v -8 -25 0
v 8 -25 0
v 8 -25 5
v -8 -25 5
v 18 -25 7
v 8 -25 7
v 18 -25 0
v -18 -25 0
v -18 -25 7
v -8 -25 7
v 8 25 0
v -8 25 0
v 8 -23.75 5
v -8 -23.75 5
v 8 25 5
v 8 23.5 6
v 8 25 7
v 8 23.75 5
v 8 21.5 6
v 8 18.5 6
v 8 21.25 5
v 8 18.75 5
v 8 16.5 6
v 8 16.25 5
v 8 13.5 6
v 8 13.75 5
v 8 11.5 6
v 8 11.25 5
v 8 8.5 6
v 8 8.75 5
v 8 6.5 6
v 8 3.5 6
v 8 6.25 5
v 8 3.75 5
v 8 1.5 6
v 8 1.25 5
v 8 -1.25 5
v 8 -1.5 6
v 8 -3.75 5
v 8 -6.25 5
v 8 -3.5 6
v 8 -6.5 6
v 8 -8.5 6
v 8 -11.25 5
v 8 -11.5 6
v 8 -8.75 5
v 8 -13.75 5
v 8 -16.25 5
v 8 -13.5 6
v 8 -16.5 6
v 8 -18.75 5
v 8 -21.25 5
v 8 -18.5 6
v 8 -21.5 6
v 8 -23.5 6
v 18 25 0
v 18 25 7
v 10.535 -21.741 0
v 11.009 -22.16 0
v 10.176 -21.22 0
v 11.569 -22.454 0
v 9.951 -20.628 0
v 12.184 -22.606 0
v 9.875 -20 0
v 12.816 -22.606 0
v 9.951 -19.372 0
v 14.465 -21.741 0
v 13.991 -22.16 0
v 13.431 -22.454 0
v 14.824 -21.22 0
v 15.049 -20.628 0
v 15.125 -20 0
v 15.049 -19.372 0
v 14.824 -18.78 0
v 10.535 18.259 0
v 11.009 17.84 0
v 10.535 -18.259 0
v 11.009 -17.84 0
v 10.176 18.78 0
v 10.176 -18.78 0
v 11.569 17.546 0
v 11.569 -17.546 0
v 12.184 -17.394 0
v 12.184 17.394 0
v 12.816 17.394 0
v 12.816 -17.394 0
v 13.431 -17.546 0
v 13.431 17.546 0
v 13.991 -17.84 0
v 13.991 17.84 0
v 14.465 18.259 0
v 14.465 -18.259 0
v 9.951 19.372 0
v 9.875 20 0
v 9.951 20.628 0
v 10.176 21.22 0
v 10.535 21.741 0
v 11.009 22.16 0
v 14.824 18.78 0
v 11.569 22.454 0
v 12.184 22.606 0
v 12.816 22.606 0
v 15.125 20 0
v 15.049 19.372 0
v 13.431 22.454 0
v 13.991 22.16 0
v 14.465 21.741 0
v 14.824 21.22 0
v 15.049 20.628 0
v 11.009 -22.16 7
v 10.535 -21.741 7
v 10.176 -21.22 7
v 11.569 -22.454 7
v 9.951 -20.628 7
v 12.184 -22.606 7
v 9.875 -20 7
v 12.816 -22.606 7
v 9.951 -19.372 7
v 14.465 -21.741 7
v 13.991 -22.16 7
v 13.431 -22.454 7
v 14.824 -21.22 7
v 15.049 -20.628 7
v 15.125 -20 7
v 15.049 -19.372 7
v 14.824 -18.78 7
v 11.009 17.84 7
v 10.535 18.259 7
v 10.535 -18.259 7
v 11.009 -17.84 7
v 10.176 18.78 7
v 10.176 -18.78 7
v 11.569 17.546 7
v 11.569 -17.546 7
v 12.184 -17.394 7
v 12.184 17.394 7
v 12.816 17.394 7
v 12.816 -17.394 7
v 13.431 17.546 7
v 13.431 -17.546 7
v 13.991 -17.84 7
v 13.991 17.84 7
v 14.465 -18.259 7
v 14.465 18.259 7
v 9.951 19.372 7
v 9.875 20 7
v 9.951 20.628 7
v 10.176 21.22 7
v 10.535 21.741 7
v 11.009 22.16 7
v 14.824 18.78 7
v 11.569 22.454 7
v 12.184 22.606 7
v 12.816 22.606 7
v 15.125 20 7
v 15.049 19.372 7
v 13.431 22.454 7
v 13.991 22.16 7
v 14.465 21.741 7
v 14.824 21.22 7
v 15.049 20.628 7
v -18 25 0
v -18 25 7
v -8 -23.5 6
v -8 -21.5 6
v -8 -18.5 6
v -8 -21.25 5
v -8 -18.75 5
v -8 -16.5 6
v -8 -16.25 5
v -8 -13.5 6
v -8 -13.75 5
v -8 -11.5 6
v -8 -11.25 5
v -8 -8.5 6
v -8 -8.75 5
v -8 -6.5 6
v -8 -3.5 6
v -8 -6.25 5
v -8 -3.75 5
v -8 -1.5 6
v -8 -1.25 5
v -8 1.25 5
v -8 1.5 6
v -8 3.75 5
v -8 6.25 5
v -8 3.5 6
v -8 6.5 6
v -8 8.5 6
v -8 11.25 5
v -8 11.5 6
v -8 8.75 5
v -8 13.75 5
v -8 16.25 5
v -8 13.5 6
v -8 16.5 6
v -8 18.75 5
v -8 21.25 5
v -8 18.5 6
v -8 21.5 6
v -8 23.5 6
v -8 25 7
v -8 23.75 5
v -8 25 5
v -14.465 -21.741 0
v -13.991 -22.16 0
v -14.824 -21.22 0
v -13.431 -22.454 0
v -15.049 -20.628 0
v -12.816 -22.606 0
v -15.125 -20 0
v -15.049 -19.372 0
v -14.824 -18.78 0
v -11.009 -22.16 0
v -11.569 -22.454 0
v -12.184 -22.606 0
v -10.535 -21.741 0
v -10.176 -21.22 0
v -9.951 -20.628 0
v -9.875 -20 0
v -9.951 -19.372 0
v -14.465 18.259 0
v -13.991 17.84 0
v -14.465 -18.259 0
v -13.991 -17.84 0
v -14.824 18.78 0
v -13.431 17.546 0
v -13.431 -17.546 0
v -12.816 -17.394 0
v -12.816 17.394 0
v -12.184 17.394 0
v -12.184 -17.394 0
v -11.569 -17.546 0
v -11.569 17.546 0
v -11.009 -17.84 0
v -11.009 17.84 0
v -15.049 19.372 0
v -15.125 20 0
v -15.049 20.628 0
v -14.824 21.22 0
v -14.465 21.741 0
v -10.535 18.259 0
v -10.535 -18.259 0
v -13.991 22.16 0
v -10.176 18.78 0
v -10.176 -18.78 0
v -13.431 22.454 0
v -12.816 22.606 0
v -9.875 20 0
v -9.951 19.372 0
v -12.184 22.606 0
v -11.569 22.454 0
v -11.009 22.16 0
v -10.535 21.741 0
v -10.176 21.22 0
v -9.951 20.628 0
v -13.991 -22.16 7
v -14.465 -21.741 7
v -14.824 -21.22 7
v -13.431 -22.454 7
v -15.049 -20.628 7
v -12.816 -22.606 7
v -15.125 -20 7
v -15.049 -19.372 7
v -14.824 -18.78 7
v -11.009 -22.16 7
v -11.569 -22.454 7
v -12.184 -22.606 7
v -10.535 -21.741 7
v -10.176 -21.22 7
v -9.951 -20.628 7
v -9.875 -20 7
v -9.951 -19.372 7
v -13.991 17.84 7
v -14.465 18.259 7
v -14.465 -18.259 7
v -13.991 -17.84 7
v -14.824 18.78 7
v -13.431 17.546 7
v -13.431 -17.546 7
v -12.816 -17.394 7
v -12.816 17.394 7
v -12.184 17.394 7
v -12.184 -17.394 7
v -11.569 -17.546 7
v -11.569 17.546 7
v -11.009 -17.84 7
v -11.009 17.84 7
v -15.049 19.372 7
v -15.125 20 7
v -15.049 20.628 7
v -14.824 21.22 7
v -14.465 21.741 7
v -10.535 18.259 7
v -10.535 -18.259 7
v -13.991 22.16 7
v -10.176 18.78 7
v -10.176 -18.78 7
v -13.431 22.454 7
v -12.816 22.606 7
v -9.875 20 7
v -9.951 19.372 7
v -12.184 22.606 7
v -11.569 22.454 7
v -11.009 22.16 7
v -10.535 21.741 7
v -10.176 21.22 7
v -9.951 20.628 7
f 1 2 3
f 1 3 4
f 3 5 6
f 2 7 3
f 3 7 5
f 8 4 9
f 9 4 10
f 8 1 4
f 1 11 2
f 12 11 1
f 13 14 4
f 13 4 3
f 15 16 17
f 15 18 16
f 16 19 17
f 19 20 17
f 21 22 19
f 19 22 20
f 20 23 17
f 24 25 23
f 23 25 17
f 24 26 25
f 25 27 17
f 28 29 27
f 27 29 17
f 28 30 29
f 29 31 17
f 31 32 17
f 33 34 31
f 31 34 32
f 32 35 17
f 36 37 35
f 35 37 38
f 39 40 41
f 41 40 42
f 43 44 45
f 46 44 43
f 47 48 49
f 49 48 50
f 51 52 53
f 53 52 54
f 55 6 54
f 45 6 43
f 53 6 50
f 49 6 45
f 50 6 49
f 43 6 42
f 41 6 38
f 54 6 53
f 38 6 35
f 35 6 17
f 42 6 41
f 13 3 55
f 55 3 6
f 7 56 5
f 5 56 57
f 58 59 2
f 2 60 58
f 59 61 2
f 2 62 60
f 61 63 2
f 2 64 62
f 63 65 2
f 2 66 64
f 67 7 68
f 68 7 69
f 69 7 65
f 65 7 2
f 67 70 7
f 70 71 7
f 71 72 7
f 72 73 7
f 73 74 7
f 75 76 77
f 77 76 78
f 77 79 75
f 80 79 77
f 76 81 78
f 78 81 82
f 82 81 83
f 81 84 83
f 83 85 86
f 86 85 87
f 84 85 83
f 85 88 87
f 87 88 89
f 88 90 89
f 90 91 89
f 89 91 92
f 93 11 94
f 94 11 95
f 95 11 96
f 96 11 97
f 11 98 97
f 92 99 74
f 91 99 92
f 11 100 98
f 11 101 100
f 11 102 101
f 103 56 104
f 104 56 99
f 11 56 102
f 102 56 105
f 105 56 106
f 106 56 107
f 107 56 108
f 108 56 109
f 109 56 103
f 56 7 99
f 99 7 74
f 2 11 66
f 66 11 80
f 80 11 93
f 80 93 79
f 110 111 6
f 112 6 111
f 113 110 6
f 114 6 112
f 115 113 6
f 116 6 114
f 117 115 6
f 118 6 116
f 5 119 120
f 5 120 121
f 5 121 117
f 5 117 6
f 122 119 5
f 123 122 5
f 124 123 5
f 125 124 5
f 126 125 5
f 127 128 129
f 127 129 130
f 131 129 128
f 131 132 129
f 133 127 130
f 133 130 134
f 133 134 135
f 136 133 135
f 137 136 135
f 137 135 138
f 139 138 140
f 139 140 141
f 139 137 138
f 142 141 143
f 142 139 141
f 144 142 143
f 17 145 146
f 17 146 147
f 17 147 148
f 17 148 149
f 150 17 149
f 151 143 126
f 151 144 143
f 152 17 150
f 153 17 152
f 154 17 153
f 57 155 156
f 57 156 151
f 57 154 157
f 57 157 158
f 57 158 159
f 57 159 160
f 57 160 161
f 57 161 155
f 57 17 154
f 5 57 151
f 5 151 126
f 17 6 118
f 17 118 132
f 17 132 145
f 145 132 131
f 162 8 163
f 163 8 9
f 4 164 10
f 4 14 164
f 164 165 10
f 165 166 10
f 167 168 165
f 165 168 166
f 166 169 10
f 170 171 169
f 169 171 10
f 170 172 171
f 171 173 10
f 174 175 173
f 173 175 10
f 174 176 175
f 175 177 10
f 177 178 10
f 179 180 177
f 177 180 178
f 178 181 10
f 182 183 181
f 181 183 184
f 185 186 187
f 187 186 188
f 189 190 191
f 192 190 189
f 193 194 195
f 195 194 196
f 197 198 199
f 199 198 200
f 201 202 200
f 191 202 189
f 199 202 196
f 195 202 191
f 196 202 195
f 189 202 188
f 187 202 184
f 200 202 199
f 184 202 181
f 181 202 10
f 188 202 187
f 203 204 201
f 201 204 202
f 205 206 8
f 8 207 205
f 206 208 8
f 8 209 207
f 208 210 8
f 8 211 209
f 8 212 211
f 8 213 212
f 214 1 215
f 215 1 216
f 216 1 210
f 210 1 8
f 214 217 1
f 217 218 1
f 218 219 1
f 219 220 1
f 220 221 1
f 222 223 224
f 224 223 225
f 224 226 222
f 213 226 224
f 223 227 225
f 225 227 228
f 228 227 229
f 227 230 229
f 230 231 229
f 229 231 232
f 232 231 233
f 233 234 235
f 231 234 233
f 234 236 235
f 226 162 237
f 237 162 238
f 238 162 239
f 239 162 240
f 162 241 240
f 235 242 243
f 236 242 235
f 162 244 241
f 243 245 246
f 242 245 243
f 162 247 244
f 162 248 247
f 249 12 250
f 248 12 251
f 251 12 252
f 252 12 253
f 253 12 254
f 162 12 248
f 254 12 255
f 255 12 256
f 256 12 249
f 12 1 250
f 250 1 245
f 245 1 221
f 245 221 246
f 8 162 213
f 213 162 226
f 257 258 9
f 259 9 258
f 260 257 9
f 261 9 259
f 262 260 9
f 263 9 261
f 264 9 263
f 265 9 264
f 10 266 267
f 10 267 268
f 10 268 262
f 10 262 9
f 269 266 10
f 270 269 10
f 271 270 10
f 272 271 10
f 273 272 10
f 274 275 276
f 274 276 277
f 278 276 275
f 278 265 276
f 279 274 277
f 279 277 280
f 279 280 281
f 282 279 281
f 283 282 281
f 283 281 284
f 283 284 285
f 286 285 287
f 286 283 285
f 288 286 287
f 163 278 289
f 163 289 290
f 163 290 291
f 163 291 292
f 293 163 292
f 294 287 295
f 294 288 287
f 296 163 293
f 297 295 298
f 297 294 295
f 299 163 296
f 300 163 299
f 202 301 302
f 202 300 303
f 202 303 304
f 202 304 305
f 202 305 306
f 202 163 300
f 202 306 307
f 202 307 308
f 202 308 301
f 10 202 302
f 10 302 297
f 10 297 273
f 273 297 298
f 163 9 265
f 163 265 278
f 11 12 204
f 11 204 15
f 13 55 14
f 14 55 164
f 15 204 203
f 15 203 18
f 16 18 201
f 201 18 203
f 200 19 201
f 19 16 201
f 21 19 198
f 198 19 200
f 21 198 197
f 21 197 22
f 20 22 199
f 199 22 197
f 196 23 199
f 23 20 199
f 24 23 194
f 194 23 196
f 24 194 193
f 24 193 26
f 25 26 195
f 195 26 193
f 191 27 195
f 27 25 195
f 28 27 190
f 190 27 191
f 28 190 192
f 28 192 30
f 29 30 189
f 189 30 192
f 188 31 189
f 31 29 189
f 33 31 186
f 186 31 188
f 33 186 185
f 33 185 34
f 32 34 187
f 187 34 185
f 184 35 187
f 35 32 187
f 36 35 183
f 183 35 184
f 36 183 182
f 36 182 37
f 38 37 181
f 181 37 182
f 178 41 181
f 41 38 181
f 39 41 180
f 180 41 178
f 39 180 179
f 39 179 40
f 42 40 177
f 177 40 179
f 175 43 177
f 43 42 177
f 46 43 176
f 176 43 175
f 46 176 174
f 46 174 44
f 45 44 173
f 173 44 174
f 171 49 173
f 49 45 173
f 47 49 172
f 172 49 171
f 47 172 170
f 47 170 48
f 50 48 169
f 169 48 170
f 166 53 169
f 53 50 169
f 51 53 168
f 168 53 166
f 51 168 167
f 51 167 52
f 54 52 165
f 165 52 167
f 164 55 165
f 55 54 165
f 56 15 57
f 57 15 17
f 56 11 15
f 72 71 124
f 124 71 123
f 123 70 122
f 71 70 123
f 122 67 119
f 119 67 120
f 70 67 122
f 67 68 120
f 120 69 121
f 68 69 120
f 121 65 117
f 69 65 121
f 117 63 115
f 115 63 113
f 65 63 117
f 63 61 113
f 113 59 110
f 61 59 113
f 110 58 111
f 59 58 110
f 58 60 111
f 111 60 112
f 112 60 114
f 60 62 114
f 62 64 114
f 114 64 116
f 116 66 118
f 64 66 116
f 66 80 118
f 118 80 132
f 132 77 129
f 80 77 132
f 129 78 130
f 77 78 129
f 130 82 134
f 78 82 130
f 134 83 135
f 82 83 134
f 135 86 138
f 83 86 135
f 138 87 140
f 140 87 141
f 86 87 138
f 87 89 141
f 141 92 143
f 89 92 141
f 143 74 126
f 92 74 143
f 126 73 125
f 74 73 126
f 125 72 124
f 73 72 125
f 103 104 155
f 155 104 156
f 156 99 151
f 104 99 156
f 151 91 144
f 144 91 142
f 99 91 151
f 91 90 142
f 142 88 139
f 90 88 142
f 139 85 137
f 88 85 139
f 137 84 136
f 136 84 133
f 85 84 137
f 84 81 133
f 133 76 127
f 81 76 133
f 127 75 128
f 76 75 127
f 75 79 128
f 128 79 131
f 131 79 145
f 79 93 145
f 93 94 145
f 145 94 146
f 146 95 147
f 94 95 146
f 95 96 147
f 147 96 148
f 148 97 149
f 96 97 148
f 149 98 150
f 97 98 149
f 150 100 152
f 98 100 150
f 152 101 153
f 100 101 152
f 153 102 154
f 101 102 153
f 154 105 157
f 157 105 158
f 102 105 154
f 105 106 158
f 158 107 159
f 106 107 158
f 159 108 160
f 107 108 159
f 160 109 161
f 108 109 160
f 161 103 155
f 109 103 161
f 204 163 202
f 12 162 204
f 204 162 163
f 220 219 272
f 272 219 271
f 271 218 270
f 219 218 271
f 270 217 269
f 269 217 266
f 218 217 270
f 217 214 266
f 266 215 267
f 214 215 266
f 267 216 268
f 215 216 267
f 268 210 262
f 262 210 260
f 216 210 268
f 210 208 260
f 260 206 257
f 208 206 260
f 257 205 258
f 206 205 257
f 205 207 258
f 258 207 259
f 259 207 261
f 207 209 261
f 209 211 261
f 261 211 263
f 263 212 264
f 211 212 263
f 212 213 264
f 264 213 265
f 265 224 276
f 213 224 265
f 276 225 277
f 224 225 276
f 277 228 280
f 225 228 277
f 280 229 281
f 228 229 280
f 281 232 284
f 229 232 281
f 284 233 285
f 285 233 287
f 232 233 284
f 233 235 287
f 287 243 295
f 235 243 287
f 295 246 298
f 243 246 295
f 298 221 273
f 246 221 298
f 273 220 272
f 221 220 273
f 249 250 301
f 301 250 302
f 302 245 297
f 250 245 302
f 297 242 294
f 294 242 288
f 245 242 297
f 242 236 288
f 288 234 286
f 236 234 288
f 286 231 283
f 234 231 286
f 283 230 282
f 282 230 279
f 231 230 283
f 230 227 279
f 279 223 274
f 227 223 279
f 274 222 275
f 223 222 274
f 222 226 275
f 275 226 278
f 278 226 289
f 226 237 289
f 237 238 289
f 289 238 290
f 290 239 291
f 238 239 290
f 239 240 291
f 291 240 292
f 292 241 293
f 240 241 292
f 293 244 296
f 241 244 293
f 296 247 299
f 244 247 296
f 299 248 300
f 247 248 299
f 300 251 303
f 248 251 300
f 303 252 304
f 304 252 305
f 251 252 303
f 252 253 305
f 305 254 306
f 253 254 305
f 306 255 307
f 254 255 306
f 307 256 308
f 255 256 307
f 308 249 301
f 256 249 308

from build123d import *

# Parameters (mm, degrees)
SKETCH_W     = 16
SKETCH_H     = 50
PAD_DEPTH    = 5
PAD001_DEPTH = 16
SKETCH002_W  = 10
SKETCH002_H  = 50
PAD002_DEPTH = 7
SKETCH003_W  = 10
SKETCH003_H  = 50
PAD003_DEPTH = 7
SKETCH004_R  = 2.625
POCKET_DEPTH = 7


with BuildPart() as part:
    # Sketch → Pad (new body)
    with BuildSketch(Plane.XY):
        Rectangle(SKETCH_W, SKETCH_H)
    extrude(amount=PAD_DEPTH)

    # Sketch001 (on Face3 of Pad) → Pad001 (join)
    with BuildSketch(Plane.YZ.offset(8)):
        Polygon((-23.75, 5), (-23.5, 6), (-21.5, 6), (-21.25, 5), align=None)
        Polygon((-18.75, 5), (-18.5, 6), (-16.5, 6), (-16.25, 5), align=None)
        Polygon((-13.75, 5), (-13.5, 6), (-11.5, 6), (-11.25, 5), align=None)
        Polygon((-8.75, 5), (-8.5, 6), (-6.5, 6), (-6.25, 5), align=None)
        Polygon((-3.75, 5), (-3.5, 6), (-1.5, 6), (-1.25, 5), align=None)
        Polygon((1.25, 5), (1.5, 6), (3.5, 6), (3.75, 5), align=None)
        Polygon((6.25, 5), (6.5, 6), (8.5, 6), (8.75, 5), align=None)
        Polygon((11.25, 5), (11.5, 6), (13.5, 6), (13.75, 5), align=None)
        Polygon((16.25, 5), (16.5, 6), (18.5, 6), (18.75, 5), align=None)
        Polygon((21.25, 5), (21.5, 6), (23.5, 6), (23.75, 5), align=None)
    extrude(amount=-PAD001_DEPTH)

    # Sketch002 (on Face4 of Pad001) → Pad002 (join)
    with BuildSketch(Plane(origin=(0, 0, 0), x_dir=(1, 0, 0), z_dir=(0, 0, -1))):
        with Locations((13, 0)):
            Rectangle(SKETCH002_W, SKETCH002_H)
    extrude(amount=-PAD002_DEPTH)

    # Sketch003 (on Face4 of Pad002) → Pad003 (join)
    with BuildSketch(Plane(origin=(0, 0, 0), x_dir=(1, 0, 0), z_dir=(0, 0, -1))):
        with Locations((-13, 0)):
            Rectangle(SKETCH003_W, SKETCH003_H)
    extrude(amount=-PAD003_DEPTH)

    # Sketch004 (on Face12 of Pad003) → Pocket (cut)
    with BuildSketch(Plane(origin=(0, 0, 0), x_dir=(1, 0, 0), z_dir=(0, 0, -1))):
        with Locations((-12.5, 20)):
            Circle(SKETCH004_R)
        with Locations((-12.5, -20)):
            Circle(SKETCH004_R)
        with Locations((12.5, -20)):
            Circle(SKETCH004_R)
        with Locations((12.5, 20)):
            Circle(SKETCH004_R)
    extrude(amount=-POCKET_DEPTH, mode=Mode.SUBTRACT)


solid = part.part
